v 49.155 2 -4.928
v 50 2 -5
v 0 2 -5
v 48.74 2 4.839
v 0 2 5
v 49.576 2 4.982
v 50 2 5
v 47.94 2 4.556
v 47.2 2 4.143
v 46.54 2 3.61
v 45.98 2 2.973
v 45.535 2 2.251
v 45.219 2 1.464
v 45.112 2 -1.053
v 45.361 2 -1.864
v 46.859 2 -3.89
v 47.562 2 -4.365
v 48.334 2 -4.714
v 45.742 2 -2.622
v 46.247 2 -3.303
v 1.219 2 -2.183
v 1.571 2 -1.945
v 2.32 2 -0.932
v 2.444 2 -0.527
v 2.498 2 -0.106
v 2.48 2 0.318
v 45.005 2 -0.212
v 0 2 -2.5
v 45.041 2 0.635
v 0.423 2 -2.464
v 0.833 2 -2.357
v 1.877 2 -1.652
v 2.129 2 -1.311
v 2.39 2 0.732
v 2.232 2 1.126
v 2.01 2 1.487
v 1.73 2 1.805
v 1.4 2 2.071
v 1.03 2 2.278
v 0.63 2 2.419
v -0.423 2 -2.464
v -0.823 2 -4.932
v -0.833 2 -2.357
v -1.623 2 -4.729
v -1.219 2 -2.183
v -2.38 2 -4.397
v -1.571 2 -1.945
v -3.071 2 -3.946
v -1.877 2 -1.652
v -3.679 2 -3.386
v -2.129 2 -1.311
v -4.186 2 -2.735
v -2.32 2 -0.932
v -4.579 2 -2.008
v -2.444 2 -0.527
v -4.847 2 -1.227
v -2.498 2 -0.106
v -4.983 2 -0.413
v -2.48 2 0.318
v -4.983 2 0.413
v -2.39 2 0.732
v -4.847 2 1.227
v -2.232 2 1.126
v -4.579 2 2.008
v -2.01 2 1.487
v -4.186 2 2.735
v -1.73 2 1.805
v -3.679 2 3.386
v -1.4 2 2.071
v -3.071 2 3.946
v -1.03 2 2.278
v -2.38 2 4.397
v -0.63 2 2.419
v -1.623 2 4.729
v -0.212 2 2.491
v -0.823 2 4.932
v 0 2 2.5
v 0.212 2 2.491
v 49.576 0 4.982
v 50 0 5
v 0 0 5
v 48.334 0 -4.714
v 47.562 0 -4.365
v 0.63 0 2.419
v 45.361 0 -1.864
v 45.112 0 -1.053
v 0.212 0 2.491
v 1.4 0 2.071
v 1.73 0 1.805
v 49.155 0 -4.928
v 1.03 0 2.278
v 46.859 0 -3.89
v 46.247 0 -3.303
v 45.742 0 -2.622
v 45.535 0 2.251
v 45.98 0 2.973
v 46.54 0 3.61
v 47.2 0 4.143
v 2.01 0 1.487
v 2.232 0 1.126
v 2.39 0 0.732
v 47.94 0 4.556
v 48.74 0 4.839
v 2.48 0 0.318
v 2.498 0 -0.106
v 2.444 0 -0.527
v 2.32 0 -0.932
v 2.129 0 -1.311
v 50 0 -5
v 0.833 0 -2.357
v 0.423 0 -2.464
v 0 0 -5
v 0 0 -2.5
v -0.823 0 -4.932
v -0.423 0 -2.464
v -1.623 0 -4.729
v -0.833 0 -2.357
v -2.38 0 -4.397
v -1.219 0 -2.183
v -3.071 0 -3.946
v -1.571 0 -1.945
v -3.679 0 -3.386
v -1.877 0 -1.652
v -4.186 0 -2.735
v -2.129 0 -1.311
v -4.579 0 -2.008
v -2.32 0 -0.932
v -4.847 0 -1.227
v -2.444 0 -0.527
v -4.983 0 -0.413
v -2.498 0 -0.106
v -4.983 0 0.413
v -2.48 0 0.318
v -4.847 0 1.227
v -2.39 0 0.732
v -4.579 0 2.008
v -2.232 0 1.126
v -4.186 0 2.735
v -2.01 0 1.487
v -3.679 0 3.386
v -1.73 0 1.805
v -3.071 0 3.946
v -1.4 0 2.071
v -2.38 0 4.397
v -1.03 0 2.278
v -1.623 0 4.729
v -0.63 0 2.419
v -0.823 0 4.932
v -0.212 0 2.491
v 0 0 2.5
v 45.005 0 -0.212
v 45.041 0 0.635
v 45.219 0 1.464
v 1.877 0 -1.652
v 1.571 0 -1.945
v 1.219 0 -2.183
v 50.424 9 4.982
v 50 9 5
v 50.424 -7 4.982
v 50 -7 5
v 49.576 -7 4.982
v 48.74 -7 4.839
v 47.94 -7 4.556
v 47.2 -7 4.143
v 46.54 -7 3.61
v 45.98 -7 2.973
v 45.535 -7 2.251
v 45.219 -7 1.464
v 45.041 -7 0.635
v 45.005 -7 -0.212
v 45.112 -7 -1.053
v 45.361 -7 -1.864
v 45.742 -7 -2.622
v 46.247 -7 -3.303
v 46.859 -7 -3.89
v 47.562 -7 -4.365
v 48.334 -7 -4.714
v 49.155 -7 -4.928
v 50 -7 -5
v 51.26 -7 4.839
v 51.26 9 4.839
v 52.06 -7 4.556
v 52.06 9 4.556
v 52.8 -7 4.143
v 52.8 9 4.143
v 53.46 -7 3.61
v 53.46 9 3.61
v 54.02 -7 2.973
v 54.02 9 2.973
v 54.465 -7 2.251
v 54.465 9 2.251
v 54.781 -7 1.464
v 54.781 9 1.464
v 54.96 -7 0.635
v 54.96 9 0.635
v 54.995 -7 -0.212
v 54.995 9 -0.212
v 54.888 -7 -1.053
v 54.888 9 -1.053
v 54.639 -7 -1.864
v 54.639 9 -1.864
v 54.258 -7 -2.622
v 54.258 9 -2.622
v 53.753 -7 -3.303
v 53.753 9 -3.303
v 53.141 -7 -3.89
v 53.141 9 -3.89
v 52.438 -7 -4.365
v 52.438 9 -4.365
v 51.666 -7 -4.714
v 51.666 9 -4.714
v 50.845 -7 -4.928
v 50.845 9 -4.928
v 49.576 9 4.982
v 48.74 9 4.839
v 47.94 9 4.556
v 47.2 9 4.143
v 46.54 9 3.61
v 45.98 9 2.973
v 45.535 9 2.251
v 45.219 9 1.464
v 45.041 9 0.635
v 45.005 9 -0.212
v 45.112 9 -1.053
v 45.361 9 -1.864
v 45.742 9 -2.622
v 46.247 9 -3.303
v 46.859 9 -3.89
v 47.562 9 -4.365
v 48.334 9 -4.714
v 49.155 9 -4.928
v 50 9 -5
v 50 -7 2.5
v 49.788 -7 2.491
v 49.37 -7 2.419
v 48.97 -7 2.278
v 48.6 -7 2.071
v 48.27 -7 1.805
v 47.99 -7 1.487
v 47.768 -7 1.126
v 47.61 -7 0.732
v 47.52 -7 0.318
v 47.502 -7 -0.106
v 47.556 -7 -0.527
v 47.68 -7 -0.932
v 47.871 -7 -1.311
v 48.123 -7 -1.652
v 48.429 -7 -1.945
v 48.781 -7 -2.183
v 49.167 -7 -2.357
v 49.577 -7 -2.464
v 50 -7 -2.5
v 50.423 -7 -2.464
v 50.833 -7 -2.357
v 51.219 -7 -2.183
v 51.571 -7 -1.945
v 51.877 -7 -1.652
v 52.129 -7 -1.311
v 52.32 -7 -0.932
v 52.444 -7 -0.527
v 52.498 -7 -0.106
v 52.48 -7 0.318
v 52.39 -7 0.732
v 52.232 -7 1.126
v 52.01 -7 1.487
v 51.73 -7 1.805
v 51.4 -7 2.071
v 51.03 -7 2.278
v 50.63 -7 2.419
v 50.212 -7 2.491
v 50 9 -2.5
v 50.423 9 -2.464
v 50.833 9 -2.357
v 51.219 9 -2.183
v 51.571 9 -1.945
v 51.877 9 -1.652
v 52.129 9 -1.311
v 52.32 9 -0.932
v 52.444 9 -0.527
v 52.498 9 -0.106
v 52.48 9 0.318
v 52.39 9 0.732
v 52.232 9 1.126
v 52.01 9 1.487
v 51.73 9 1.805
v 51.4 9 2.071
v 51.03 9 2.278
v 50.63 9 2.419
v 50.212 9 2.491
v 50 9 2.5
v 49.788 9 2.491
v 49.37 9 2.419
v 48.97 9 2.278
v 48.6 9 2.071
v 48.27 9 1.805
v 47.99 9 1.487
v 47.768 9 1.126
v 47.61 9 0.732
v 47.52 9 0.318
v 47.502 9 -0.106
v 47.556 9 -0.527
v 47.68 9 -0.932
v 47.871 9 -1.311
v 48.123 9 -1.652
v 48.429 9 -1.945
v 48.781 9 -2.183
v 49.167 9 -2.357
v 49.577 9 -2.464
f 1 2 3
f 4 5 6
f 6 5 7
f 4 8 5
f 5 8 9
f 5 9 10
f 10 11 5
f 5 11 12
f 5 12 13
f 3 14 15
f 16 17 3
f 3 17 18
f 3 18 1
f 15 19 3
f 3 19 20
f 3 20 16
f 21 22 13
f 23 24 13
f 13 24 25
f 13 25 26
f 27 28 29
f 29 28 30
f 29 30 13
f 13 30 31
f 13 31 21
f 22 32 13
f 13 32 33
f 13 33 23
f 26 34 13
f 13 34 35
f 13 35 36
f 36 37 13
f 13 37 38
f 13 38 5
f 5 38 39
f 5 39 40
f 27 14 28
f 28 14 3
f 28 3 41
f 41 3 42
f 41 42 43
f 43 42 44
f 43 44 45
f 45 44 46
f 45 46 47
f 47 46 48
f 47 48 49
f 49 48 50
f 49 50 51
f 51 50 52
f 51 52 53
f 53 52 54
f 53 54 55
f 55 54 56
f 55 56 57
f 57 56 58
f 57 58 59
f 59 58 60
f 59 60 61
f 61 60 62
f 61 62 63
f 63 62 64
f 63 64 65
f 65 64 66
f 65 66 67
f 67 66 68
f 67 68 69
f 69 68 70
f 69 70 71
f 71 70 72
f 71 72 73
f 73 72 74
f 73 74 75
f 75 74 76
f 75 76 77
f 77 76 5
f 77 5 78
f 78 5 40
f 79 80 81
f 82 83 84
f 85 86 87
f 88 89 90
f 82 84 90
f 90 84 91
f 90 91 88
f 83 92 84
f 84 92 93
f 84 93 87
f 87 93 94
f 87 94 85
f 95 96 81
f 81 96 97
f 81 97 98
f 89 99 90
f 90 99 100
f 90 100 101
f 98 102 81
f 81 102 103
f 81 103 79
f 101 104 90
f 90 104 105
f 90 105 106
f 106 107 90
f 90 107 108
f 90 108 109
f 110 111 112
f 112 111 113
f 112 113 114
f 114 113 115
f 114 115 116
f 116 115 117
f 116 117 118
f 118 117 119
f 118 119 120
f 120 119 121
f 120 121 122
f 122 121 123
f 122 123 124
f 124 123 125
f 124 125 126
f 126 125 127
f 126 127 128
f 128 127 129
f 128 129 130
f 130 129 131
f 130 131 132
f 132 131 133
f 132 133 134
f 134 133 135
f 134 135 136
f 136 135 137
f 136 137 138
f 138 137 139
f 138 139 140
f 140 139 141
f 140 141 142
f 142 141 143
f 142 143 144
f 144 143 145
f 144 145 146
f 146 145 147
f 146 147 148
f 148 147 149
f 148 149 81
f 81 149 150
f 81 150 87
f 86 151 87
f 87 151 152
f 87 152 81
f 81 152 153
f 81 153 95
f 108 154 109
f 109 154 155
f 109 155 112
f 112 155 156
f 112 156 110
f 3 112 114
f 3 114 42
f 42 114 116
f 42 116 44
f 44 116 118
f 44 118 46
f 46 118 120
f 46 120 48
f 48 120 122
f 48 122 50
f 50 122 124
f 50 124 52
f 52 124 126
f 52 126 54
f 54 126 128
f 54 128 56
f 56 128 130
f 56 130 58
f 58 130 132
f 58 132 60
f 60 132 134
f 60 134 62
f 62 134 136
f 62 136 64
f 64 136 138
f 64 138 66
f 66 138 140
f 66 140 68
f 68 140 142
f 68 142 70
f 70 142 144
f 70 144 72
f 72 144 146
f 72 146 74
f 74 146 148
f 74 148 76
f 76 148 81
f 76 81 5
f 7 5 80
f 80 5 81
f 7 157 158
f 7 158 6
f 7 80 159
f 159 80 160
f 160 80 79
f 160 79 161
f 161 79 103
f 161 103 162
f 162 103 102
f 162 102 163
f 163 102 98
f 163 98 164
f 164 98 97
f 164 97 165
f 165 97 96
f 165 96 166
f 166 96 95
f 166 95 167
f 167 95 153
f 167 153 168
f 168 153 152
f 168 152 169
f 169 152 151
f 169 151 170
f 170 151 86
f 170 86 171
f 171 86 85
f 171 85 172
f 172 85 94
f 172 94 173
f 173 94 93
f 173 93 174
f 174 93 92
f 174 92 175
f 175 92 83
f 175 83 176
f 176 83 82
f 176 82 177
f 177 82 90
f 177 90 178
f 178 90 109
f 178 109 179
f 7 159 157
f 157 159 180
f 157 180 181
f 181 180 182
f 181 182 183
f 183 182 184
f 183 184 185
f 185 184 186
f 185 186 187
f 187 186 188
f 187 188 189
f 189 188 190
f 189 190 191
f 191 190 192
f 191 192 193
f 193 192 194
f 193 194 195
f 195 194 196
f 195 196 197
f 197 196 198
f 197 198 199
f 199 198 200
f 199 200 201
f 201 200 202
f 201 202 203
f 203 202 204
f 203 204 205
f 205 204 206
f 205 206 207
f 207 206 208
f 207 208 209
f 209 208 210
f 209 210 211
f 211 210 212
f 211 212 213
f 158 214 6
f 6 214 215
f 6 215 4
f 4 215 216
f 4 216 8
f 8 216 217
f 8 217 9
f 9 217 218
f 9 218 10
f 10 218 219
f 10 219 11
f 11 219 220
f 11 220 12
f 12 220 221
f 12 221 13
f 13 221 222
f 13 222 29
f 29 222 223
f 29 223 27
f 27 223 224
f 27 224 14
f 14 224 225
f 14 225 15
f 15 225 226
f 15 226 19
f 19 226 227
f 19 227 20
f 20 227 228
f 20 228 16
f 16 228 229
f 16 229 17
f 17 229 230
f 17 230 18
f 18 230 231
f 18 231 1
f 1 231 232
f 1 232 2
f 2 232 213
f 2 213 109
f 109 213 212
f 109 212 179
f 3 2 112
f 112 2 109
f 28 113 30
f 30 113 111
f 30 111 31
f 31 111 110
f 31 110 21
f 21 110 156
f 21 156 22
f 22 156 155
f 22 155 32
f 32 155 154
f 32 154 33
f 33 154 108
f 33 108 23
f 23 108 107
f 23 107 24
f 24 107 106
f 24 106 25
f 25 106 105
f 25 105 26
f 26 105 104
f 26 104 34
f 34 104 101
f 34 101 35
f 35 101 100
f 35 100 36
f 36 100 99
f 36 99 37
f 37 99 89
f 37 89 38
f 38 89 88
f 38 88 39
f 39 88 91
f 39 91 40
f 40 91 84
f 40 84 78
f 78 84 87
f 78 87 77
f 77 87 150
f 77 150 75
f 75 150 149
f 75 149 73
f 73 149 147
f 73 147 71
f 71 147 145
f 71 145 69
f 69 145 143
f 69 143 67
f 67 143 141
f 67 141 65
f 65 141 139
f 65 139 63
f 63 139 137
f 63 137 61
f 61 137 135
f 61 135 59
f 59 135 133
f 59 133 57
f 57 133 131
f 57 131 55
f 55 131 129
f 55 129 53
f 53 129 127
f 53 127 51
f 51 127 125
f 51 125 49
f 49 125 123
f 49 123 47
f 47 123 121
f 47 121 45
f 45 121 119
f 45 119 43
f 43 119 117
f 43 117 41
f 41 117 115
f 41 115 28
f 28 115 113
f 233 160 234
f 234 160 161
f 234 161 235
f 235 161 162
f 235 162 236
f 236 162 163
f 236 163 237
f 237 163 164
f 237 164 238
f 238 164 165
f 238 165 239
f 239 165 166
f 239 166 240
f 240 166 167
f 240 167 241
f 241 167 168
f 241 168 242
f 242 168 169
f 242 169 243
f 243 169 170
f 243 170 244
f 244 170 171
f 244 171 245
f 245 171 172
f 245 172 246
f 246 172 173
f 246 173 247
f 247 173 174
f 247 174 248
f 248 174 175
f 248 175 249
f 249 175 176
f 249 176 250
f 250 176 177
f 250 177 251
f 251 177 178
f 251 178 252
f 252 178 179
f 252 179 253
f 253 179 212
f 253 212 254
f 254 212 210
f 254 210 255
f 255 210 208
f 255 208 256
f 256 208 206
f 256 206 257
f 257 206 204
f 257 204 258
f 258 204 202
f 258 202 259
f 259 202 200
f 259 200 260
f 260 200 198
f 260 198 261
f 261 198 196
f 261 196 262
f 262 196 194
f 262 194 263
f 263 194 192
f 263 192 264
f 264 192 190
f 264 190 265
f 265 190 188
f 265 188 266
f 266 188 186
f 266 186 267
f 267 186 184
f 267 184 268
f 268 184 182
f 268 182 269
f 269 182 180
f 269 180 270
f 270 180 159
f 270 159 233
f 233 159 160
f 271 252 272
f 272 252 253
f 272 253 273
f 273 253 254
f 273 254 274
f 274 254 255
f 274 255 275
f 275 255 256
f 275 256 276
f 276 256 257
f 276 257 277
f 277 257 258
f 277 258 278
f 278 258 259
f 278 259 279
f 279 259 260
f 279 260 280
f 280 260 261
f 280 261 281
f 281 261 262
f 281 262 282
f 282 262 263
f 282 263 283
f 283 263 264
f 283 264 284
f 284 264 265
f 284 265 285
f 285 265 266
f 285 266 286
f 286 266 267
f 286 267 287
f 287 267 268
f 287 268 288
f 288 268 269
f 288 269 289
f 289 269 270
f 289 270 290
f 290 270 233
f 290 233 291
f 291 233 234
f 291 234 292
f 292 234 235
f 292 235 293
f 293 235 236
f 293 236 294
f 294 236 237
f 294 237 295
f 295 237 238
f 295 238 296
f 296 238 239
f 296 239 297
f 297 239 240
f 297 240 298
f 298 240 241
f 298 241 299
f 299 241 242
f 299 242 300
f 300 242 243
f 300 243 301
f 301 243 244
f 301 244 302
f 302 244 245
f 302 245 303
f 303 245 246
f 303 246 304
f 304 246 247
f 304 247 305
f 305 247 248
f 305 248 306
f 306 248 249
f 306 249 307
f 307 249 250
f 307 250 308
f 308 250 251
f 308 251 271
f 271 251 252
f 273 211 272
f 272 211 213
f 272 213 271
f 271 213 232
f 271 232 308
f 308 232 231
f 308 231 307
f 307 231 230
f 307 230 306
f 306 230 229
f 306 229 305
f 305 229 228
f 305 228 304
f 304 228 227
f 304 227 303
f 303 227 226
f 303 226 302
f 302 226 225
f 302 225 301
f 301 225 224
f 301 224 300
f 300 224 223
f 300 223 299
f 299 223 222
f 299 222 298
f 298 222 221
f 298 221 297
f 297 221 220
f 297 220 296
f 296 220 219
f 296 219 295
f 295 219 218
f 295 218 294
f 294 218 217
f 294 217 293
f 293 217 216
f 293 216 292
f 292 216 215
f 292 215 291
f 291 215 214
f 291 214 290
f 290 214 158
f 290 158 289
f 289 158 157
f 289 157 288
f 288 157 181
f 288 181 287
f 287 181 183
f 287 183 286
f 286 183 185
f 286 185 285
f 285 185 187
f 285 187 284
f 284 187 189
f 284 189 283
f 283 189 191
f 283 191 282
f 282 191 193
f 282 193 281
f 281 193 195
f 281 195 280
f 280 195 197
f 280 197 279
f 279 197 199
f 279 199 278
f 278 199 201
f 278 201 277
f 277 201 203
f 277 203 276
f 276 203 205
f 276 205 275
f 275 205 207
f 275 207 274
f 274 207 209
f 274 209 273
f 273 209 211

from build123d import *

# Parameters (mm, degrees)
SKETCH1_R                = 2.5
BOSS_EXTRUDE1_DEPTH      = 2
BOSS_EXTRUDE3_DEPTH      = 8
BOSS_EXTRUDE3_DEPTH_BACK = 8
SKETCH3_R                = 5
SKETCH3_R_2              = 2.5


with BuildPart() as part:
    # Sketch1 → Boss-Extrude1 (new body)
    with BuildSketch(Plane(origin=(0, 0, 0), x_dir=(1, 0, 0), z_dir=(0, 1, 0))):
        with BuildLine():
            Line((0, 5), (50, 5))
            ThreePointArc((50, 5), (55, 0), (50, -5))
            Line((50, -5), (0, -5))
            ThreePointArc((0, -5), (-5, 0), (0, 5))
        make_face()
        with Locations(Location((0, 0, 0), (0, 0, 270))):
            Circle(SKETCH1_R, mode=Mode.SUBTRACT)
        with Locations(Location((50, 0, 0), (0, 0, 270))):
            Circle(SKETCH1_R, mode=Mode.SUBTRACT)
    extrude(amount=BOSS_EXTRUDE1_DEPTH)

    # Sketch3 → Boss-Extrude3 (add, two sides: drawn at the far end of the back side and taken through both)
    with BuildSketch(Plane(origin=(0, 1, 0), x_dir=(1, 0, 0), z_dir=(0, 1, 0)).offset(-BOSS_EXTRUDE3_DEPTH_BACK)):
        with Locations(Location((50, 0, 0), (0, 0, 270))):
            Circle(SKETCH3_R)
        with Locations(Location((50, 0, 0), (0, 0, 270))):
            Circle(SKETCH3_R_2, mode=Mode.SUBTRACT)
    extrude(amount=BOSS_EXTRUDE3_DEPTH + BOSS_EXTRUDE3_DEPTH_BACK)


solid = part.part
